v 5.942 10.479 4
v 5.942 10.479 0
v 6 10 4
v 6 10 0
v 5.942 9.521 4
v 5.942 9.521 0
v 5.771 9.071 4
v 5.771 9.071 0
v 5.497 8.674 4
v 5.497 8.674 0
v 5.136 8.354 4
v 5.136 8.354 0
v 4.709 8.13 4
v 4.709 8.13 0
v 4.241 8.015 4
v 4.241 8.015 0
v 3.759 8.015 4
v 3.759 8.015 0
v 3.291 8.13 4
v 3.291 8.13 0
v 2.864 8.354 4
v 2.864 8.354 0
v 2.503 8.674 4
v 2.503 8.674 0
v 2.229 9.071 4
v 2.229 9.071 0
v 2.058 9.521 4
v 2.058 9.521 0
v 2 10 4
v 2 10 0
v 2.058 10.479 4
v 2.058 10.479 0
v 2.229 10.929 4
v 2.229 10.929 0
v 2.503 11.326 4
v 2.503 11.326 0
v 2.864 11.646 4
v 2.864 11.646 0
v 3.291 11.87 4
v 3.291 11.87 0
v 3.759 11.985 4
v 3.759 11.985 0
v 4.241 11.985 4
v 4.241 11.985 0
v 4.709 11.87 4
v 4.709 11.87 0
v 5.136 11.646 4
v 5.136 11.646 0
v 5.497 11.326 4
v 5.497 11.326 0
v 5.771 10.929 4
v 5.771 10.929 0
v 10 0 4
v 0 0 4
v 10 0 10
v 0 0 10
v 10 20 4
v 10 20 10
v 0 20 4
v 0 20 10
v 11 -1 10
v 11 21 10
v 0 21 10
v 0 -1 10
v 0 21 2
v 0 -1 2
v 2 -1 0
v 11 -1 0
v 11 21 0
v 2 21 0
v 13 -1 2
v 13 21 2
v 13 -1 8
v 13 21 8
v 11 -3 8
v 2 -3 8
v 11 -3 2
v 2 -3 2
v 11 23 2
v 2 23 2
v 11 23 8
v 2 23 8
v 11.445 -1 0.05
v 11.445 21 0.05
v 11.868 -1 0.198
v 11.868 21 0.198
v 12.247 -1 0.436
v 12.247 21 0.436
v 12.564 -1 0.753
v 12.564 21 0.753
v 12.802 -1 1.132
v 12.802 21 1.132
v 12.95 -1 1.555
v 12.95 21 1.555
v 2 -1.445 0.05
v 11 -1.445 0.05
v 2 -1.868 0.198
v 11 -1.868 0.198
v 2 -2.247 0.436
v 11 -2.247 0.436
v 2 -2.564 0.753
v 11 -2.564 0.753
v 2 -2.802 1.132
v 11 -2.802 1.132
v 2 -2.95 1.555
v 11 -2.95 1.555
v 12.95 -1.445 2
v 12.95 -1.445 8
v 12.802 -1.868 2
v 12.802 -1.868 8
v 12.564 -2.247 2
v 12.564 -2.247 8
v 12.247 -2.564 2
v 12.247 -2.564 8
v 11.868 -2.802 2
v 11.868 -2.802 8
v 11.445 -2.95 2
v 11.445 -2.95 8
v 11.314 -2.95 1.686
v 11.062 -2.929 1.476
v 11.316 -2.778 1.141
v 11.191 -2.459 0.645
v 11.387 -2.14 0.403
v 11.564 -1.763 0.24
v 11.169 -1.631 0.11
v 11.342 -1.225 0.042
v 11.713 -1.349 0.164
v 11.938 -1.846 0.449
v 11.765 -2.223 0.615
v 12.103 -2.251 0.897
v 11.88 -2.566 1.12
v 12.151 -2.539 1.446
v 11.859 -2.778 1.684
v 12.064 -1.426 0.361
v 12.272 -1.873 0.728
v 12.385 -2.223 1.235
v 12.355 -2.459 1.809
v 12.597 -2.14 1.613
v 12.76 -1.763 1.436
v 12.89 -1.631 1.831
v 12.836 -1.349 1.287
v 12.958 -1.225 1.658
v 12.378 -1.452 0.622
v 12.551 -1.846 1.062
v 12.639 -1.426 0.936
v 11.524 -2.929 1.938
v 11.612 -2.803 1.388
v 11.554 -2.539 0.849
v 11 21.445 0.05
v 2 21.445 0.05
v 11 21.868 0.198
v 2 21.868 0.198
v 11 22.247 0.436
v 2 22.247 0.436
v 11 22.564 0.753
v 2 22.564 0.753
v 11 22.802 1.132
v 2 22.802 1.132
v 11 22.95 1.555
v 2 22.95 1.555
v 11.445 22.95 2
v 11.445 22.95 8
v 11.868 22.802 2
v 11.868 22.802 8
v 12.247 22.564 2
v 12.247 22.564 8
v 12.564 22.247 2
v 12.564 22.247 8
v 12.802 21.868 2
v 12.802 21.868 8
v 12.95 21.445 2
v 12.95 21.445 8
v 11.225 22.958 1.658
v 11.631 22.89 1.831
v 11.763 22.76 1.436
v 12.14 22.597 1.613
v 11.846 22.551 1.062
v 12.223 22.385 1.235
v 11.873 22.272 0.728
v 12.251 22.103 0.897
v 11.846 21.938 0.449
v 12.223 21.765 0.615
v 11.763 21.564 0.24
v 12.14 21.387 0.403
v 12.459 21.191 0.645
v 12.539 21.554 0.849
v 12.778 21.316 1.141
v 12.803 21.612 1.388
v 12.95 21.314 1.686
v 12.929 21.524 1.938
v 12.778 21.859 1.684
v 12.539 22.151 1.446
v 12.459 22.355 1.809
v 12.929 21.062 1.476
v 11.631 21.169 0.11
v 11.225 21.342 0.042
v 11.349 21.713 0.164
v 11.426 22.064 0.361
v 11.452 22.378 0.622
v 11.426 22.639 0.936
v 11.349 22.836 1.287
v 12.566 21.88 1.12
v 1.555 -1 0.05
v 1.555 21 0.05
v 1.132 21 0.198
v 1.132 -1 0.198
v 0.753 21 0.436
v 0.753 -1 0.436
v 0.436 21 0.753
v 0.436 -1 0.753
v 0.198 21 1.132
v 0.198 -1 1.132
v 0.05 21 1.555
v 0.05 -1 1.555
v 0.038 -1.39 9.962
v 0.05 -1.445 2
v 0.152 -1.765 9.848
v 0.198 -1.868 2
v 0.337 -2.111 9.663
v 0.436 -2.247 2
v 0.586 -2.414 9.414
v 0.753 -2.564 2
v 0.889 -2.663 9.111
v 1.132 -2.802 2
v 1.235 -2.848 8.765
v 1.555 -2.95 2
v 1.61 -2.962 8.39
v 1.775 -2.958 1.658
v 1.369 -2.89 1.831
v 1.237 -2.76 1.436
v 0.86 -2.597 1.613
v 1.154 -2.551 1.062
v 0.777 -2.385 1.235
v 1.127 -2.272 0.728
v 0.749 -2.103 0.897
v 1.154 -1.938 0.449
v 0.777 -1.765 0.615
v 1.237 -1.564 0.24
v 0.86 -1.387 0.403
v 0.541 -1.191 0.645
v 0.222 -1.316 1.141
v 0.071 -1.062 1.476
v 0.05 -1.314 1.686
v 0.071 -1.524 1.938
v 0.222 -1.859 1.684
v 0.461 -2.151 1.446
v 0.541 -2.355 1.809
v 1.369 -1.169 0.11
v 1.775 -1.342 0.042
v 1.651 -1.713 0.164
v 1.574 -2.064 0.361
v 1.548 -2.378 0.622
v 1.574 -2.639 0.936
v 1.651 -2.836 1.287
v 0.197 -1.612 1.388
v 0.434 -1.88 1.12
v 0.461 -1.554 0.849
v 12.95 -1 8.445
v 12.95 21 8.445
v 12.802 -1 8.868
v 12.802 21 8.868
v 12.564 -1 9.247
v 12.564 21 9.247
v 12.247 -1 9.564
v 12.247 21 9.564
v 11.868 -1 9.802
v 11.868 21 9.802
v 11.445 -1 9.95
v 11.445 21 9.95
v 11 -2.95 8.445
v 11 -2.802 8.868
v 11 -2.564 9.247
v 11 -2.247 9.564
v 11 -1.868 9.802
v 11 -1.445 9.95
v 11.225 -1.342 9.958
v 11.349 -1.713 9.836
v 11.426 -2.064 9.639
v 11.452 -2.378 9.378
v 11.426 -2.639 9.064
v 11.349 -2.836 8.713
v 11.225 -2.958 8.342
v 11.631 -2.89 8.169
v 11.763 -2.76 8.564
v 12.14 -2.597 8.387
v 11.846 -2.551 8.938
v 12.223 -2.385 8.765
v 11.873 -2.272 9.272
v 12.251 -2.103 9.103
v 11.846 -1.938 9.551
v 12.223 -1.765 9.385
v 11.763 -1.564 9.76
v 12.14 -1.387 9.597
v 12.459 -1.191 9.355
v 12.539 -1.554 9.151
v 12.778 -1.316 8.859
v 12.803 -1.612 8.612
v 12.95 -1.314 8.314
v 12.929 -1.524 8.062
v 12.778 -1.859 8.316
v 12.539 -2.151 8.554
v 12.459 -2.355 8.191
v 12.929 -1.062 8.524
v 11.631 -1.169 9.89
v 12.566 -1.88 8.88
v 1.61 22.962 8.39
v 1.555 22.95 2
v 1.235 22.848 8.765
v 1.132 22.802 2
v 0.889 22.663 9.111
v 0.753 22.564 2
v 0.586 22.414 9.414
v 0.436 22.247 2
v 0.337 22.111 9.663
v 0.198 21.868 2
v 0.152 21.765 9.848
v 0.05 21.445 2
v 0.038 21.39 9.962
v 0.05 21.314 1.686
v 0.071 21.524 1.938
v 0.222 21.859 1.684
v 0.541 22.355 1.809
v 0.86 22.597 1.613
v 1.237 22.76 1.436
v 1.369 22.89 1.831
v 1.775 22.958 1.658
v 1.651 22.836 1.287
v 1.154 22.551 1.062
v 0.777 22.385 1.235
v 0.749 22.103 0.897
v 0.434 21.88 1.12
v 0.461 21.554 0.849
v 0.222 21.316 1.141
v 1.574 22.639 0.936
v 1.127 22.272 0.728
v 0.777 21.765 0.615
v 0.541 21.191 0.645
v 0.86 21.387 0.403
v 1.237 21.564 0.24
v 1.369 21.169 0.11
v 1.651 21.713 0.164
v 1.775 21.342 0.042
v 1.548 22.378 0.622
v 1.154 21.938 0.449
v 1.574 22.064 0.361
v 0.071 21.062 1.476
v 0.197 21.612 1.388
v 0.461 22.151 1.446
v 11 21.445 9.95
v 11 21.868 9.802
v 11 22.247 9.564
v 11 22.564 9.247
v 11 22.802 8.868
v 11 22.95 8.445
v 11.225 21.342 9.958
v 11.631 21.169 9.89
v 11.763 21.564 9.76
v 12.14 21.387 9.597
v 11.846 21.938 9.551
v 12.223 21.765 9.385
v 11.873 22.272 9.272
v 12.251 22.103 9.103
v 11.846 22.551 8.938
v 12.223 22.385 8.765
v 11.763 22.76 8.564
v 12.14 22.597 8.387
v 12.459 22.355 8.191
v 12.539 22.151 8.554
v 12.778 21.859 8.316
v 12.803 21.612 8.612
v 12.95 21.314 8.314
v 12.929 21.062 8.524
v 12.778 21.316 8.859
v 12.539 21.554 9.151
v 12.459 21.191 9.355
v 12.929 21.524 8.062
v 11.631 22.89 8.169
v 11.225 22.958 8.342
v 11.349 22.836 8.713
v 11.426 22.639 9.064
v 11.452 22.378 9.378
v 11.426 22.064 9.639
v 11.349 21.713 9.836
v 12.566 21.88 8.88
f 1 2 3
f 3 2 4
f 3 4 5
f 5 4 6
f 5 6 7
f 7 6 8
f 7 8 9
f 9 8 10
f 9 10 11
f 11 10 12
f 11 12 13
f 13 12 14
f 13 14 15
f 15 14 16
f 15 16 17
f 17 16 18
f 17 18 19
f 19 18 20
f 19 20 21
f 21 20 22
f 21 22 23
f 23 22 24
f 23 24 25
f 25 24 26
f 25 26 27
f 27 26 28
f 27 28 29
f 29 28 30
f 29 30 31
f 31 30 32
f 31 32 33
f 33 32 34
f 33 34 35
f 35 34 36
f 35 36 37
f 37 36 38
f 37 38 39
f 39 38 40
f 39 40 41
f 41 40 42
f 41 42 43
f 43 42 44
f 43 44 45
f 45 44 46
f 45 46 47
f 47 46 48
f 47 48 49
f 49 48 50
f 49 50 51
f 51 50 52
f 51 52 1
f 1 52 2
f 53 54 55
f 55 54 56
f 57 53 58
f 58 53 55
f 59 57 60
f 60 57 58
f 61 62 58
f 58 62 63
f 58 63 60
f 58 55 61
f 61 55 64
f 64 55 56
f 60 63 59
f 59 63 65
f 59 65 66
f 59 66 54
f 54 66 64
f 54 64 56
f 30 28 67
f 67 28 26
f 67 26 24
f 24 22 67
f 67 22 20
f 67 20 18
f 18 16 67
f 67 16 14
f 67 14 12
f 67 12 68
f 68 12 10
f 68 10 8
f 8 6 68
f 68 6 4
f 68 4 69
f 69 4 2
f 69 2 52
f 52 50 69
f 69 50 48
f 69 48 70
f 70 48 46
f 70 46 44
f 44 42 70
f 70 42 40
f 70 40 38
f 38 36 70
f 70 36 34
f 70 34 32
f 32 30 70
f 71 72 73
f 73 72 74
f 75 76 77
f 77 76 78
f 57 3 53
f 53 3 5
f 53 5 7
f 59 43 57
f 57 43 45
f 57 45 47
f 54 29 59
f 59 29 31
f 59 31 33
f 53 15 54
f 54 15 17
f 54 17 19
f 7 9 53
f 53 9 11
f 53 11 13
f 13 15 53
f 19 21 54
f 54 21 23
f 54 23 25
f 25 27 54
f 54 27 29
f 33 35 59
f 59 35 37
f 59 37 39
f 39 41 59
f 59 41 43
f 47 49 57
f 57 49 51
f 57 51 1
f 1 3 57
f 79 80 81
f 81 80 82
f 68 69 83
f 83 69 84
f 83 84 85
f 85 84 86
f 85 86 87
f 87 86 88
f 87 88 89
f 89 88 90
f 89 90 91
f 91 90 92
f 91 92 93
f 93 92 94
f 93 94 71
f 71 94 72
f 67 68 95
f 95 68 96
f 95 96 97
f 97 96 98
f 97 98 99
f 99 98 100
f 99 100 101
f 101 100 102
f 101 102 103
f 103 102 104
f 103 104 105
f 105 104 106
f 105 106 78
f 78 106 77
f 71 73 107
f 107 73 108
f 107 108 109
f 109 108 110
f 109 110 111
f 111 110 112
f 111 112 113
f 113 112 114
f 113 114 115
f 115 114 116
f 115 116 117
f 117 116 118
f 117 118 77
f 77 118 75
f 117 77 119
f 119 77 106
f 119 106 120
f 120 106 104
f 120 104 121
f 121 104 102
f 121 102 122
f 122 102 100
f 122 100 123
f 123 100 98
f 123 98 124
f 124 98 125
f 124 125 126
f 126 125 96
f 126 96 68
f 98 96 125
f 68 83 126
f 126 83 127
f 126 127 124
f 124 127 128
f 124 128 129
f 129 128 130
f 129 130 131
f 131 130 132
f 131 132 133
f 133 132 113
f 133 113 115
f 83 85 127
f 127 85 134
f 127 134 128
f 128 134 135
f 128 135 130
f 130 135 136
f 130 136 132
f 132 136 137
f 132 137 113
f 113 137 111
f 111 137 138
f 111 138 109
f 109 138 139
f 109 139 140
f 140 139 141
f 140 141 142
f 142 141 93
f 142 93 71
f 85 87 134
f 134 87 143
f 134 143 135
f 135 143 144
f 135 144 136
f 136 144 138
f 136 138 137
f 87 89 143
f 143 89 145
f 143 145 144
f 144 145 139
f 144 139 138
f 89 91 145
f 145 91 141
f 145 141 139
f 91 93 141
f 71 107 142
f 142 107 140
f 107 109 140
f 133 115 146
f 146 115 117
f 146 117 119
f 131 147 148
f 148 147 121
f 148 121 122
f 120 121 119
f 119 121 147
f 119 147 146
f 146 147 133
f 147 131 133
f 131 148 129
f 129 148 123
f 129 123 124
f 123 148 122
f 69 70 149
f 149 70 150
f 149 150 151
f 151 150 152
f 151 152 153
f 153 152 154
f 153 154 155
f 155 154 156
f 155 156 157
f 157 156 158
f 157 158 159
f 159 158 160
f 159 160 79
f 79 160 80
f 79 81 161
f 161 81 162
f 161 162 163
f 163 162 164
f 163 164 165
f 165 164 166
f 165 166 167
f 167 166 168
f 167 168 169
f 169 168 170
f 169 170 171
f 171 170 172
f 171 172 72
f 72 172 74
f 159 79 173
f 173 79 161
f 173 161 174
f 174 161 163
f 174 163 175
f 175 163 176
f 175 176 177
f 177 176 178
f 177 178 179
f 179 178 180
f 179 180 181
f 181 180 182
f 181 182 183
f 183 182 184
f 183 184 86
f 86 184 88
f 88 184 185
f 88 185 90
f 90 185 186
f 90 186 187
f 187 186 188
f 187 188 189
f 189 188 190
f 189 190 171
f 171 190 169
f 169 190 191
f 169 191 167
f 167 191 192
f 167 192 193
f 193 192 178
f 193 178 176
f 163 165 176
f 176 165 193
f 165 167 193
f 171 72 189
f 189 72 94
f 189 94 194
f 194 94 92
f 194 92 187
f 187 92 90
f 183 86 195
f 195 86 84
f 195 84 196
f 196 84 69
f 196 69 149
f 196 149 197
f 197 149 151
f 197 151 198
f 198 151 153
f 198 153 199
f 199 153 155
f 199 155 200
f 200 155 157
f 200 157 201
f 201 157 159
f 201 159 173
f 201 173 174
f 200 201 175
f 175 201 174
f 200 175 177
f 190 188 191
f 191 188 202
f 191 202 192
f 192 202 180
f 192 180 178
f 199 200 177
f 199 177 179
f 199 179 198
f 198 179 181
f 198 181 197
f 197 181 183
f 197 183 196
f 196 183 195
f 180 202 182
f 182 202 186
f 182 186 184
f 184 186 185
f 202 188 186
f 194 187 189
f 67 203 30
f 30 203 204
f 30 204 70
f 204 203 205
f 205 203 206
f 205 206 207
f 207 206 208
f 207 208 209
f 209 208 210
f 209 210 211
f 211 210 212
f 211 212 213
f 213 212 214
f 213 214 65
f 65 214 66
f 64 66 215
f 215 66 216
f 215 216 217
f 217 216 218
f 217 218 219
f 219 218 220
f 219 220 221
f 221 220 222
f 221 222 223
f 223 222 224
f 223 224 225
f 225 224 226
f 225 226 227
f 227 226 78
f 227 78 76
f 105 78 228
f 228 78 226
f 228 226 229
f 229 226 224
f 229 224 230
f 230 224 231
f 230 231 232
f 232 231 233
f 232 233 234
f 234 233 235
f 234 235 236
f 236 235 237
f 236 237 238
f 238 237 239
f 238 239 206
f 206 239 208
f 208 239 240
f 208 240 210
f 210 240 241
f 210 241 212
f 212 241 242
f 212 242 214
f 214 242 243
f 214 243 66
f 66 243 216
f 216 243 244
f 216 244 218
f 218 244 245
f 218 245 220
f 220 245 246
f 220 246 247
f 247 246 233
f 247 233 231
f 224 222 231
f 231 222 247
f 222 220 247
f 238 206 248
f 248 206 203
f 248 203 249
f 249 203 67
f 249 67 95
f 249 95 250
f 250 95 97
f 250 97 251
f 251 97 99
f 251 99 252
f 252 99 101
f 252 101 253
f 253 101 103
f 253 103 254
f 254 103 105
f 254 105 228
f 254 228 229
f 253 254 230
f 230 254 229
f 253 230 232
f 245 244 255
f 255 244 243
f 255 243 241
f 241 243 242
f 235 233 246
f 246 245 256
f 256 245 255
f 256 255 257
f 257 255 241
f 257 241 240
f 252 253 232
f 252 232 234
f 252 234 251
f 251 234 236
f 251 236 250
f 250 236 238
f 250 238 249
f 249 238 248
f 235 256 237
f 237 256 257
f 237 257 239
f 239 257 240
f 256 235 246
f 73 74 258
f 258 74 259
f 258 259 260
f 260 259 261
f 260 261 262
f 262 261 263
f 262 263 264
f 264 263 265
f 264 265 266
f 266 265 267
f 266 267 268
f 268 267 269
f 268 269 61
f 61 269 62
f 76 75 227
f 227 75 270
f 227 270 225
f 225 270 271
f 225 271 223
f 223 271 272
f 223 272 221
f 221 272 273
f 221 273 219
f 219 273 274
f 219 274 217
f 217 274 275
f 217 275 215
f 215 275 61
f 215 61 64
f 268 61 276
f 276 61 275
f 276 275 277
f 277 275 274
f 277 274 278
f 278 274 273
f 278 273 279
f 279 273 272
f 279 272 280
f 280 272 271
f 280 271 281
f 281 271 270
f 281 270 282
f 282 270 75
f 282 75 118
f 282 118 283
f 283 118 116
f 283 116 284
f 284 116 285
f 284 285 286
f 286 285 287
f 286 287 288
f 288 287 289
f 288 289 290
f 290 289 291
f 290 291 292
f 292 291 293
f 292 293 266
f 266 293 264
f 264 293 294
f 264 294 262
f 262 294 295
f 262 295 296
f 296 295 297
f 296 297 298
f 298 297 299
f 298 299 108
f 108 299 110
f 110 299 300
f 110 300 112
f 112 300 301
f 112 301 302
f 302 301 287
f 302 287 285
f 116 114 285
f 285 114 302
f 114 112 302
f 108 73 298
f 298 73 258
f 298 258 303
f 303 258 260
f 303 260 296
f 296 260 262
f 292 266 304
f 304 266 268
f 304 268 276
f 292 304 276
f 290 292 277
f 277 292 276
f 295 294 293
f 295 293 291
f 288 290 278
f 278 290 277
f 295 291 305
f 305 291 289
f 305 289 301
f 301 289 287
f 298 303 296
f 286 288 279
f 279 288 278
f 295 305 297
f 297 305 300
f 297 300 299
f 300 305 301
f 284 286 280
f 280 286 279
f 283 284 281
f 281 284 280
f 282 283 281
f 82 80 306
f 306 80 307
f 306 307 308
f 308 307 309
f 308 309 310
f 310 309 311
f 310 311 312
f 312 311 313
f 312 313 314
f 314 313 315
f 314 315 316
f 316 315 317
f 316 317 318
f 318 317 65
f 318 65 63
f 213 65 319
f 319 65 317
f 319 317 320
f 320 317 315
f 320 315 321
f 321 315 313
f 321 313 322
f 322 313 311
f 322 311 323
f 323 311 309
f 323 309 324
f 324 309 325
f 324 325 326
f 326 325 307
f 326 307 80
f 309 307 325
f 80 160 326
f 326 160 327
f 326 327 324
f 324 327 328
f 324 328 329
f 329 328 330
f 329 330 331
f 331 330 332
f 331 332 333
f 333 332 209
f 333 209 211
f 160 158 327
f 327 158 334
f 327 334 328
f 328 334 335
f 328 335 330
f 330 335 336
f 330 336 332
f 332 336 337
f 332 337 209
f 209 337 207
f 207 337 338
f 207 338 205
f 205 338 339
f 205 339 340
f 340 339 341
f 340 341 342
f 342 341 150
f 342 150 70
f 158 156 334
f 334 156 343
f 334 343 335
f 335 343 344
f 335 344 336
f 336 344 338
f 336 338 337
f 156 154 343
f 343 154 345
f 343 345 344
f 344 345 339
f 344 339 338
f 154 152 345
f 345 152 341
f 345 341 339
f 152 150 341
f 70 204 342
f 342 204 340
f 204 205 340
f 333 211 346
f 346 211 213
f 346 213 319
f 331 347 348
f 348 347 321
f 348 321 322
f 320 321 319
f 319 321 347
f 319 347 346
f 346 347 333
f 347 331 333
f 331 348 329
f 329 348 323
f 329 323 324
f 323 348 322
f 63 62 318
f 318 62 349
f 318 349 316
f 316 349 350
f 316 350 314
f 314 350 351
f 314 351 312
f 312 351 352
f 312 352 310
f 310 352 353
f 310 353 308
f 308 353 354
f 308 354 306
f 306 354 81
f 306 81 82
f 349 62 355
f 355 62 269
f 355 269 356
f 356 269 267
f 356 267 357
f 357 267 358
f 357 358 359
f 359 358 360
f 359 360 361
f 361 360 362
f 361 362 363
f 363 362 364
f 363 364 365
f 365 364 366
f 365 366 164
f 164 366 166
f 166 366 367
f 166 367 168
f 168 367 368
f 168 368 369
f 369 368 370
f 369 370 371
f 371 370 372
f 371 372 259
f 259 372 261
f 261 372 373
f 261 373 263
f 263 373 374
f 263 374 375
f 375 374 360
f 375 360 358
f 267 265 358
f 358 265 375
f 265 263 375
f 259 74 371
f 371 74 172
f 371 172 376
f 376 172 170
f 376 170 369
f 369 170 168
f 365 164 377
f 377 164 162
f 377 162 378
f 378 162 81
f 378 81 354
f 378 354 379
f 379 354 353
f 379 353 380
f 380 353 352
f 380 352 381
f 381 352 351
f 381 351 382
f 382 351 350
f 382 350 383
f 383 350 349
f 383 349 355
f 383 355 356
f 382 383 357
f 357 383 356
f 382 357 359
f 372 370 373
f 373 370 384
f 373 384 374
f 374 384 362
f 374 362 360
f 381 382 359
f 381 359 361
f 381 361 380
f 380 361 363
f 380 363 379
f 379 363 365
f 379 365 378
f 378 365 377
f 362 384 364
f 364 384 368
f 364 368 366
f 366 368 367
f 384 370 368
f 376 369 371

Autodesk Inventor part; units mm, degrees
ref_plane "YZ Plane" through (0, 0, 0) normal (1, 0, 0) x (0, 1, 0)
ref_plane "XZ Plane" through (0, 0, 0) normal (0, 1, 0) x (-1, 0, 0)
ref_plane "XY Plane" through (0, 0, 0) normal (0, 0, 1) x (1, 0, 0)
sketch "Эскиз1" plane through (0, 0, 0) normal (0, 0, 1) x (1, 0, 0)
  line L0 (0, 0) -> (10, 0)
  line L1 (10, 0) -> (10, 20)
  line L2 (10, 20) -> (0, 20)
  line L3 (0, 20) -> (0, 0)
  circle A0 centre (4, 10) radius 2
  point P0 (10, 10)
  dimension "d0" = 10
  dimension "d1" = 4
  dimension "d2" = 6
  dimension "d3" = 20
extrude "Выдавливание1" add sketch "Эскиз1" along normal blind 4
sketch "Эскиз2" plane through (0, 0, 4) normal (0, 0, 1) x (1, 0, 0)
  point P0 (0, 0)
sketch "Эскиз3" plane through (0, 0, 0) normal (0, 0, 1) x (1, 0, 0)
  line L0 (0, 23) -> (13, 23)
  line L1 (13, 23) -> (13, -3)
  line L2 (13, -3) -> (0, -3)
  line L3 (0, -3) -> (0, 23)
  line L4 (10, 0) -> (10, 20) projected
  line L5 (10, 20) -> (0, 20) projected
  line L6 (0, 0) -> (10, 0) projected
  point P0 (10, 10)
  point P1 (13, 10)
  dimension "d8" = 3
  dimension "d10" = 3
extrude "Выдавливание2" add sketch "Эскиз3" along normal blind 10 contours L0 L1 L2 L3 L6 L4 L5
fillet "Сопряжение1" radius 2 11 edges at (13, 10, 0) (6.5, -3, 0) (6.5, 23, 0) (0, 10, 0) (13, 23, 5) (13, 10, 10) (13, -3, 5) (6.5, -3, 10) (6.5, 23, 10) (0, 23, 5) (0, -3, 5)
properties part number "2"
